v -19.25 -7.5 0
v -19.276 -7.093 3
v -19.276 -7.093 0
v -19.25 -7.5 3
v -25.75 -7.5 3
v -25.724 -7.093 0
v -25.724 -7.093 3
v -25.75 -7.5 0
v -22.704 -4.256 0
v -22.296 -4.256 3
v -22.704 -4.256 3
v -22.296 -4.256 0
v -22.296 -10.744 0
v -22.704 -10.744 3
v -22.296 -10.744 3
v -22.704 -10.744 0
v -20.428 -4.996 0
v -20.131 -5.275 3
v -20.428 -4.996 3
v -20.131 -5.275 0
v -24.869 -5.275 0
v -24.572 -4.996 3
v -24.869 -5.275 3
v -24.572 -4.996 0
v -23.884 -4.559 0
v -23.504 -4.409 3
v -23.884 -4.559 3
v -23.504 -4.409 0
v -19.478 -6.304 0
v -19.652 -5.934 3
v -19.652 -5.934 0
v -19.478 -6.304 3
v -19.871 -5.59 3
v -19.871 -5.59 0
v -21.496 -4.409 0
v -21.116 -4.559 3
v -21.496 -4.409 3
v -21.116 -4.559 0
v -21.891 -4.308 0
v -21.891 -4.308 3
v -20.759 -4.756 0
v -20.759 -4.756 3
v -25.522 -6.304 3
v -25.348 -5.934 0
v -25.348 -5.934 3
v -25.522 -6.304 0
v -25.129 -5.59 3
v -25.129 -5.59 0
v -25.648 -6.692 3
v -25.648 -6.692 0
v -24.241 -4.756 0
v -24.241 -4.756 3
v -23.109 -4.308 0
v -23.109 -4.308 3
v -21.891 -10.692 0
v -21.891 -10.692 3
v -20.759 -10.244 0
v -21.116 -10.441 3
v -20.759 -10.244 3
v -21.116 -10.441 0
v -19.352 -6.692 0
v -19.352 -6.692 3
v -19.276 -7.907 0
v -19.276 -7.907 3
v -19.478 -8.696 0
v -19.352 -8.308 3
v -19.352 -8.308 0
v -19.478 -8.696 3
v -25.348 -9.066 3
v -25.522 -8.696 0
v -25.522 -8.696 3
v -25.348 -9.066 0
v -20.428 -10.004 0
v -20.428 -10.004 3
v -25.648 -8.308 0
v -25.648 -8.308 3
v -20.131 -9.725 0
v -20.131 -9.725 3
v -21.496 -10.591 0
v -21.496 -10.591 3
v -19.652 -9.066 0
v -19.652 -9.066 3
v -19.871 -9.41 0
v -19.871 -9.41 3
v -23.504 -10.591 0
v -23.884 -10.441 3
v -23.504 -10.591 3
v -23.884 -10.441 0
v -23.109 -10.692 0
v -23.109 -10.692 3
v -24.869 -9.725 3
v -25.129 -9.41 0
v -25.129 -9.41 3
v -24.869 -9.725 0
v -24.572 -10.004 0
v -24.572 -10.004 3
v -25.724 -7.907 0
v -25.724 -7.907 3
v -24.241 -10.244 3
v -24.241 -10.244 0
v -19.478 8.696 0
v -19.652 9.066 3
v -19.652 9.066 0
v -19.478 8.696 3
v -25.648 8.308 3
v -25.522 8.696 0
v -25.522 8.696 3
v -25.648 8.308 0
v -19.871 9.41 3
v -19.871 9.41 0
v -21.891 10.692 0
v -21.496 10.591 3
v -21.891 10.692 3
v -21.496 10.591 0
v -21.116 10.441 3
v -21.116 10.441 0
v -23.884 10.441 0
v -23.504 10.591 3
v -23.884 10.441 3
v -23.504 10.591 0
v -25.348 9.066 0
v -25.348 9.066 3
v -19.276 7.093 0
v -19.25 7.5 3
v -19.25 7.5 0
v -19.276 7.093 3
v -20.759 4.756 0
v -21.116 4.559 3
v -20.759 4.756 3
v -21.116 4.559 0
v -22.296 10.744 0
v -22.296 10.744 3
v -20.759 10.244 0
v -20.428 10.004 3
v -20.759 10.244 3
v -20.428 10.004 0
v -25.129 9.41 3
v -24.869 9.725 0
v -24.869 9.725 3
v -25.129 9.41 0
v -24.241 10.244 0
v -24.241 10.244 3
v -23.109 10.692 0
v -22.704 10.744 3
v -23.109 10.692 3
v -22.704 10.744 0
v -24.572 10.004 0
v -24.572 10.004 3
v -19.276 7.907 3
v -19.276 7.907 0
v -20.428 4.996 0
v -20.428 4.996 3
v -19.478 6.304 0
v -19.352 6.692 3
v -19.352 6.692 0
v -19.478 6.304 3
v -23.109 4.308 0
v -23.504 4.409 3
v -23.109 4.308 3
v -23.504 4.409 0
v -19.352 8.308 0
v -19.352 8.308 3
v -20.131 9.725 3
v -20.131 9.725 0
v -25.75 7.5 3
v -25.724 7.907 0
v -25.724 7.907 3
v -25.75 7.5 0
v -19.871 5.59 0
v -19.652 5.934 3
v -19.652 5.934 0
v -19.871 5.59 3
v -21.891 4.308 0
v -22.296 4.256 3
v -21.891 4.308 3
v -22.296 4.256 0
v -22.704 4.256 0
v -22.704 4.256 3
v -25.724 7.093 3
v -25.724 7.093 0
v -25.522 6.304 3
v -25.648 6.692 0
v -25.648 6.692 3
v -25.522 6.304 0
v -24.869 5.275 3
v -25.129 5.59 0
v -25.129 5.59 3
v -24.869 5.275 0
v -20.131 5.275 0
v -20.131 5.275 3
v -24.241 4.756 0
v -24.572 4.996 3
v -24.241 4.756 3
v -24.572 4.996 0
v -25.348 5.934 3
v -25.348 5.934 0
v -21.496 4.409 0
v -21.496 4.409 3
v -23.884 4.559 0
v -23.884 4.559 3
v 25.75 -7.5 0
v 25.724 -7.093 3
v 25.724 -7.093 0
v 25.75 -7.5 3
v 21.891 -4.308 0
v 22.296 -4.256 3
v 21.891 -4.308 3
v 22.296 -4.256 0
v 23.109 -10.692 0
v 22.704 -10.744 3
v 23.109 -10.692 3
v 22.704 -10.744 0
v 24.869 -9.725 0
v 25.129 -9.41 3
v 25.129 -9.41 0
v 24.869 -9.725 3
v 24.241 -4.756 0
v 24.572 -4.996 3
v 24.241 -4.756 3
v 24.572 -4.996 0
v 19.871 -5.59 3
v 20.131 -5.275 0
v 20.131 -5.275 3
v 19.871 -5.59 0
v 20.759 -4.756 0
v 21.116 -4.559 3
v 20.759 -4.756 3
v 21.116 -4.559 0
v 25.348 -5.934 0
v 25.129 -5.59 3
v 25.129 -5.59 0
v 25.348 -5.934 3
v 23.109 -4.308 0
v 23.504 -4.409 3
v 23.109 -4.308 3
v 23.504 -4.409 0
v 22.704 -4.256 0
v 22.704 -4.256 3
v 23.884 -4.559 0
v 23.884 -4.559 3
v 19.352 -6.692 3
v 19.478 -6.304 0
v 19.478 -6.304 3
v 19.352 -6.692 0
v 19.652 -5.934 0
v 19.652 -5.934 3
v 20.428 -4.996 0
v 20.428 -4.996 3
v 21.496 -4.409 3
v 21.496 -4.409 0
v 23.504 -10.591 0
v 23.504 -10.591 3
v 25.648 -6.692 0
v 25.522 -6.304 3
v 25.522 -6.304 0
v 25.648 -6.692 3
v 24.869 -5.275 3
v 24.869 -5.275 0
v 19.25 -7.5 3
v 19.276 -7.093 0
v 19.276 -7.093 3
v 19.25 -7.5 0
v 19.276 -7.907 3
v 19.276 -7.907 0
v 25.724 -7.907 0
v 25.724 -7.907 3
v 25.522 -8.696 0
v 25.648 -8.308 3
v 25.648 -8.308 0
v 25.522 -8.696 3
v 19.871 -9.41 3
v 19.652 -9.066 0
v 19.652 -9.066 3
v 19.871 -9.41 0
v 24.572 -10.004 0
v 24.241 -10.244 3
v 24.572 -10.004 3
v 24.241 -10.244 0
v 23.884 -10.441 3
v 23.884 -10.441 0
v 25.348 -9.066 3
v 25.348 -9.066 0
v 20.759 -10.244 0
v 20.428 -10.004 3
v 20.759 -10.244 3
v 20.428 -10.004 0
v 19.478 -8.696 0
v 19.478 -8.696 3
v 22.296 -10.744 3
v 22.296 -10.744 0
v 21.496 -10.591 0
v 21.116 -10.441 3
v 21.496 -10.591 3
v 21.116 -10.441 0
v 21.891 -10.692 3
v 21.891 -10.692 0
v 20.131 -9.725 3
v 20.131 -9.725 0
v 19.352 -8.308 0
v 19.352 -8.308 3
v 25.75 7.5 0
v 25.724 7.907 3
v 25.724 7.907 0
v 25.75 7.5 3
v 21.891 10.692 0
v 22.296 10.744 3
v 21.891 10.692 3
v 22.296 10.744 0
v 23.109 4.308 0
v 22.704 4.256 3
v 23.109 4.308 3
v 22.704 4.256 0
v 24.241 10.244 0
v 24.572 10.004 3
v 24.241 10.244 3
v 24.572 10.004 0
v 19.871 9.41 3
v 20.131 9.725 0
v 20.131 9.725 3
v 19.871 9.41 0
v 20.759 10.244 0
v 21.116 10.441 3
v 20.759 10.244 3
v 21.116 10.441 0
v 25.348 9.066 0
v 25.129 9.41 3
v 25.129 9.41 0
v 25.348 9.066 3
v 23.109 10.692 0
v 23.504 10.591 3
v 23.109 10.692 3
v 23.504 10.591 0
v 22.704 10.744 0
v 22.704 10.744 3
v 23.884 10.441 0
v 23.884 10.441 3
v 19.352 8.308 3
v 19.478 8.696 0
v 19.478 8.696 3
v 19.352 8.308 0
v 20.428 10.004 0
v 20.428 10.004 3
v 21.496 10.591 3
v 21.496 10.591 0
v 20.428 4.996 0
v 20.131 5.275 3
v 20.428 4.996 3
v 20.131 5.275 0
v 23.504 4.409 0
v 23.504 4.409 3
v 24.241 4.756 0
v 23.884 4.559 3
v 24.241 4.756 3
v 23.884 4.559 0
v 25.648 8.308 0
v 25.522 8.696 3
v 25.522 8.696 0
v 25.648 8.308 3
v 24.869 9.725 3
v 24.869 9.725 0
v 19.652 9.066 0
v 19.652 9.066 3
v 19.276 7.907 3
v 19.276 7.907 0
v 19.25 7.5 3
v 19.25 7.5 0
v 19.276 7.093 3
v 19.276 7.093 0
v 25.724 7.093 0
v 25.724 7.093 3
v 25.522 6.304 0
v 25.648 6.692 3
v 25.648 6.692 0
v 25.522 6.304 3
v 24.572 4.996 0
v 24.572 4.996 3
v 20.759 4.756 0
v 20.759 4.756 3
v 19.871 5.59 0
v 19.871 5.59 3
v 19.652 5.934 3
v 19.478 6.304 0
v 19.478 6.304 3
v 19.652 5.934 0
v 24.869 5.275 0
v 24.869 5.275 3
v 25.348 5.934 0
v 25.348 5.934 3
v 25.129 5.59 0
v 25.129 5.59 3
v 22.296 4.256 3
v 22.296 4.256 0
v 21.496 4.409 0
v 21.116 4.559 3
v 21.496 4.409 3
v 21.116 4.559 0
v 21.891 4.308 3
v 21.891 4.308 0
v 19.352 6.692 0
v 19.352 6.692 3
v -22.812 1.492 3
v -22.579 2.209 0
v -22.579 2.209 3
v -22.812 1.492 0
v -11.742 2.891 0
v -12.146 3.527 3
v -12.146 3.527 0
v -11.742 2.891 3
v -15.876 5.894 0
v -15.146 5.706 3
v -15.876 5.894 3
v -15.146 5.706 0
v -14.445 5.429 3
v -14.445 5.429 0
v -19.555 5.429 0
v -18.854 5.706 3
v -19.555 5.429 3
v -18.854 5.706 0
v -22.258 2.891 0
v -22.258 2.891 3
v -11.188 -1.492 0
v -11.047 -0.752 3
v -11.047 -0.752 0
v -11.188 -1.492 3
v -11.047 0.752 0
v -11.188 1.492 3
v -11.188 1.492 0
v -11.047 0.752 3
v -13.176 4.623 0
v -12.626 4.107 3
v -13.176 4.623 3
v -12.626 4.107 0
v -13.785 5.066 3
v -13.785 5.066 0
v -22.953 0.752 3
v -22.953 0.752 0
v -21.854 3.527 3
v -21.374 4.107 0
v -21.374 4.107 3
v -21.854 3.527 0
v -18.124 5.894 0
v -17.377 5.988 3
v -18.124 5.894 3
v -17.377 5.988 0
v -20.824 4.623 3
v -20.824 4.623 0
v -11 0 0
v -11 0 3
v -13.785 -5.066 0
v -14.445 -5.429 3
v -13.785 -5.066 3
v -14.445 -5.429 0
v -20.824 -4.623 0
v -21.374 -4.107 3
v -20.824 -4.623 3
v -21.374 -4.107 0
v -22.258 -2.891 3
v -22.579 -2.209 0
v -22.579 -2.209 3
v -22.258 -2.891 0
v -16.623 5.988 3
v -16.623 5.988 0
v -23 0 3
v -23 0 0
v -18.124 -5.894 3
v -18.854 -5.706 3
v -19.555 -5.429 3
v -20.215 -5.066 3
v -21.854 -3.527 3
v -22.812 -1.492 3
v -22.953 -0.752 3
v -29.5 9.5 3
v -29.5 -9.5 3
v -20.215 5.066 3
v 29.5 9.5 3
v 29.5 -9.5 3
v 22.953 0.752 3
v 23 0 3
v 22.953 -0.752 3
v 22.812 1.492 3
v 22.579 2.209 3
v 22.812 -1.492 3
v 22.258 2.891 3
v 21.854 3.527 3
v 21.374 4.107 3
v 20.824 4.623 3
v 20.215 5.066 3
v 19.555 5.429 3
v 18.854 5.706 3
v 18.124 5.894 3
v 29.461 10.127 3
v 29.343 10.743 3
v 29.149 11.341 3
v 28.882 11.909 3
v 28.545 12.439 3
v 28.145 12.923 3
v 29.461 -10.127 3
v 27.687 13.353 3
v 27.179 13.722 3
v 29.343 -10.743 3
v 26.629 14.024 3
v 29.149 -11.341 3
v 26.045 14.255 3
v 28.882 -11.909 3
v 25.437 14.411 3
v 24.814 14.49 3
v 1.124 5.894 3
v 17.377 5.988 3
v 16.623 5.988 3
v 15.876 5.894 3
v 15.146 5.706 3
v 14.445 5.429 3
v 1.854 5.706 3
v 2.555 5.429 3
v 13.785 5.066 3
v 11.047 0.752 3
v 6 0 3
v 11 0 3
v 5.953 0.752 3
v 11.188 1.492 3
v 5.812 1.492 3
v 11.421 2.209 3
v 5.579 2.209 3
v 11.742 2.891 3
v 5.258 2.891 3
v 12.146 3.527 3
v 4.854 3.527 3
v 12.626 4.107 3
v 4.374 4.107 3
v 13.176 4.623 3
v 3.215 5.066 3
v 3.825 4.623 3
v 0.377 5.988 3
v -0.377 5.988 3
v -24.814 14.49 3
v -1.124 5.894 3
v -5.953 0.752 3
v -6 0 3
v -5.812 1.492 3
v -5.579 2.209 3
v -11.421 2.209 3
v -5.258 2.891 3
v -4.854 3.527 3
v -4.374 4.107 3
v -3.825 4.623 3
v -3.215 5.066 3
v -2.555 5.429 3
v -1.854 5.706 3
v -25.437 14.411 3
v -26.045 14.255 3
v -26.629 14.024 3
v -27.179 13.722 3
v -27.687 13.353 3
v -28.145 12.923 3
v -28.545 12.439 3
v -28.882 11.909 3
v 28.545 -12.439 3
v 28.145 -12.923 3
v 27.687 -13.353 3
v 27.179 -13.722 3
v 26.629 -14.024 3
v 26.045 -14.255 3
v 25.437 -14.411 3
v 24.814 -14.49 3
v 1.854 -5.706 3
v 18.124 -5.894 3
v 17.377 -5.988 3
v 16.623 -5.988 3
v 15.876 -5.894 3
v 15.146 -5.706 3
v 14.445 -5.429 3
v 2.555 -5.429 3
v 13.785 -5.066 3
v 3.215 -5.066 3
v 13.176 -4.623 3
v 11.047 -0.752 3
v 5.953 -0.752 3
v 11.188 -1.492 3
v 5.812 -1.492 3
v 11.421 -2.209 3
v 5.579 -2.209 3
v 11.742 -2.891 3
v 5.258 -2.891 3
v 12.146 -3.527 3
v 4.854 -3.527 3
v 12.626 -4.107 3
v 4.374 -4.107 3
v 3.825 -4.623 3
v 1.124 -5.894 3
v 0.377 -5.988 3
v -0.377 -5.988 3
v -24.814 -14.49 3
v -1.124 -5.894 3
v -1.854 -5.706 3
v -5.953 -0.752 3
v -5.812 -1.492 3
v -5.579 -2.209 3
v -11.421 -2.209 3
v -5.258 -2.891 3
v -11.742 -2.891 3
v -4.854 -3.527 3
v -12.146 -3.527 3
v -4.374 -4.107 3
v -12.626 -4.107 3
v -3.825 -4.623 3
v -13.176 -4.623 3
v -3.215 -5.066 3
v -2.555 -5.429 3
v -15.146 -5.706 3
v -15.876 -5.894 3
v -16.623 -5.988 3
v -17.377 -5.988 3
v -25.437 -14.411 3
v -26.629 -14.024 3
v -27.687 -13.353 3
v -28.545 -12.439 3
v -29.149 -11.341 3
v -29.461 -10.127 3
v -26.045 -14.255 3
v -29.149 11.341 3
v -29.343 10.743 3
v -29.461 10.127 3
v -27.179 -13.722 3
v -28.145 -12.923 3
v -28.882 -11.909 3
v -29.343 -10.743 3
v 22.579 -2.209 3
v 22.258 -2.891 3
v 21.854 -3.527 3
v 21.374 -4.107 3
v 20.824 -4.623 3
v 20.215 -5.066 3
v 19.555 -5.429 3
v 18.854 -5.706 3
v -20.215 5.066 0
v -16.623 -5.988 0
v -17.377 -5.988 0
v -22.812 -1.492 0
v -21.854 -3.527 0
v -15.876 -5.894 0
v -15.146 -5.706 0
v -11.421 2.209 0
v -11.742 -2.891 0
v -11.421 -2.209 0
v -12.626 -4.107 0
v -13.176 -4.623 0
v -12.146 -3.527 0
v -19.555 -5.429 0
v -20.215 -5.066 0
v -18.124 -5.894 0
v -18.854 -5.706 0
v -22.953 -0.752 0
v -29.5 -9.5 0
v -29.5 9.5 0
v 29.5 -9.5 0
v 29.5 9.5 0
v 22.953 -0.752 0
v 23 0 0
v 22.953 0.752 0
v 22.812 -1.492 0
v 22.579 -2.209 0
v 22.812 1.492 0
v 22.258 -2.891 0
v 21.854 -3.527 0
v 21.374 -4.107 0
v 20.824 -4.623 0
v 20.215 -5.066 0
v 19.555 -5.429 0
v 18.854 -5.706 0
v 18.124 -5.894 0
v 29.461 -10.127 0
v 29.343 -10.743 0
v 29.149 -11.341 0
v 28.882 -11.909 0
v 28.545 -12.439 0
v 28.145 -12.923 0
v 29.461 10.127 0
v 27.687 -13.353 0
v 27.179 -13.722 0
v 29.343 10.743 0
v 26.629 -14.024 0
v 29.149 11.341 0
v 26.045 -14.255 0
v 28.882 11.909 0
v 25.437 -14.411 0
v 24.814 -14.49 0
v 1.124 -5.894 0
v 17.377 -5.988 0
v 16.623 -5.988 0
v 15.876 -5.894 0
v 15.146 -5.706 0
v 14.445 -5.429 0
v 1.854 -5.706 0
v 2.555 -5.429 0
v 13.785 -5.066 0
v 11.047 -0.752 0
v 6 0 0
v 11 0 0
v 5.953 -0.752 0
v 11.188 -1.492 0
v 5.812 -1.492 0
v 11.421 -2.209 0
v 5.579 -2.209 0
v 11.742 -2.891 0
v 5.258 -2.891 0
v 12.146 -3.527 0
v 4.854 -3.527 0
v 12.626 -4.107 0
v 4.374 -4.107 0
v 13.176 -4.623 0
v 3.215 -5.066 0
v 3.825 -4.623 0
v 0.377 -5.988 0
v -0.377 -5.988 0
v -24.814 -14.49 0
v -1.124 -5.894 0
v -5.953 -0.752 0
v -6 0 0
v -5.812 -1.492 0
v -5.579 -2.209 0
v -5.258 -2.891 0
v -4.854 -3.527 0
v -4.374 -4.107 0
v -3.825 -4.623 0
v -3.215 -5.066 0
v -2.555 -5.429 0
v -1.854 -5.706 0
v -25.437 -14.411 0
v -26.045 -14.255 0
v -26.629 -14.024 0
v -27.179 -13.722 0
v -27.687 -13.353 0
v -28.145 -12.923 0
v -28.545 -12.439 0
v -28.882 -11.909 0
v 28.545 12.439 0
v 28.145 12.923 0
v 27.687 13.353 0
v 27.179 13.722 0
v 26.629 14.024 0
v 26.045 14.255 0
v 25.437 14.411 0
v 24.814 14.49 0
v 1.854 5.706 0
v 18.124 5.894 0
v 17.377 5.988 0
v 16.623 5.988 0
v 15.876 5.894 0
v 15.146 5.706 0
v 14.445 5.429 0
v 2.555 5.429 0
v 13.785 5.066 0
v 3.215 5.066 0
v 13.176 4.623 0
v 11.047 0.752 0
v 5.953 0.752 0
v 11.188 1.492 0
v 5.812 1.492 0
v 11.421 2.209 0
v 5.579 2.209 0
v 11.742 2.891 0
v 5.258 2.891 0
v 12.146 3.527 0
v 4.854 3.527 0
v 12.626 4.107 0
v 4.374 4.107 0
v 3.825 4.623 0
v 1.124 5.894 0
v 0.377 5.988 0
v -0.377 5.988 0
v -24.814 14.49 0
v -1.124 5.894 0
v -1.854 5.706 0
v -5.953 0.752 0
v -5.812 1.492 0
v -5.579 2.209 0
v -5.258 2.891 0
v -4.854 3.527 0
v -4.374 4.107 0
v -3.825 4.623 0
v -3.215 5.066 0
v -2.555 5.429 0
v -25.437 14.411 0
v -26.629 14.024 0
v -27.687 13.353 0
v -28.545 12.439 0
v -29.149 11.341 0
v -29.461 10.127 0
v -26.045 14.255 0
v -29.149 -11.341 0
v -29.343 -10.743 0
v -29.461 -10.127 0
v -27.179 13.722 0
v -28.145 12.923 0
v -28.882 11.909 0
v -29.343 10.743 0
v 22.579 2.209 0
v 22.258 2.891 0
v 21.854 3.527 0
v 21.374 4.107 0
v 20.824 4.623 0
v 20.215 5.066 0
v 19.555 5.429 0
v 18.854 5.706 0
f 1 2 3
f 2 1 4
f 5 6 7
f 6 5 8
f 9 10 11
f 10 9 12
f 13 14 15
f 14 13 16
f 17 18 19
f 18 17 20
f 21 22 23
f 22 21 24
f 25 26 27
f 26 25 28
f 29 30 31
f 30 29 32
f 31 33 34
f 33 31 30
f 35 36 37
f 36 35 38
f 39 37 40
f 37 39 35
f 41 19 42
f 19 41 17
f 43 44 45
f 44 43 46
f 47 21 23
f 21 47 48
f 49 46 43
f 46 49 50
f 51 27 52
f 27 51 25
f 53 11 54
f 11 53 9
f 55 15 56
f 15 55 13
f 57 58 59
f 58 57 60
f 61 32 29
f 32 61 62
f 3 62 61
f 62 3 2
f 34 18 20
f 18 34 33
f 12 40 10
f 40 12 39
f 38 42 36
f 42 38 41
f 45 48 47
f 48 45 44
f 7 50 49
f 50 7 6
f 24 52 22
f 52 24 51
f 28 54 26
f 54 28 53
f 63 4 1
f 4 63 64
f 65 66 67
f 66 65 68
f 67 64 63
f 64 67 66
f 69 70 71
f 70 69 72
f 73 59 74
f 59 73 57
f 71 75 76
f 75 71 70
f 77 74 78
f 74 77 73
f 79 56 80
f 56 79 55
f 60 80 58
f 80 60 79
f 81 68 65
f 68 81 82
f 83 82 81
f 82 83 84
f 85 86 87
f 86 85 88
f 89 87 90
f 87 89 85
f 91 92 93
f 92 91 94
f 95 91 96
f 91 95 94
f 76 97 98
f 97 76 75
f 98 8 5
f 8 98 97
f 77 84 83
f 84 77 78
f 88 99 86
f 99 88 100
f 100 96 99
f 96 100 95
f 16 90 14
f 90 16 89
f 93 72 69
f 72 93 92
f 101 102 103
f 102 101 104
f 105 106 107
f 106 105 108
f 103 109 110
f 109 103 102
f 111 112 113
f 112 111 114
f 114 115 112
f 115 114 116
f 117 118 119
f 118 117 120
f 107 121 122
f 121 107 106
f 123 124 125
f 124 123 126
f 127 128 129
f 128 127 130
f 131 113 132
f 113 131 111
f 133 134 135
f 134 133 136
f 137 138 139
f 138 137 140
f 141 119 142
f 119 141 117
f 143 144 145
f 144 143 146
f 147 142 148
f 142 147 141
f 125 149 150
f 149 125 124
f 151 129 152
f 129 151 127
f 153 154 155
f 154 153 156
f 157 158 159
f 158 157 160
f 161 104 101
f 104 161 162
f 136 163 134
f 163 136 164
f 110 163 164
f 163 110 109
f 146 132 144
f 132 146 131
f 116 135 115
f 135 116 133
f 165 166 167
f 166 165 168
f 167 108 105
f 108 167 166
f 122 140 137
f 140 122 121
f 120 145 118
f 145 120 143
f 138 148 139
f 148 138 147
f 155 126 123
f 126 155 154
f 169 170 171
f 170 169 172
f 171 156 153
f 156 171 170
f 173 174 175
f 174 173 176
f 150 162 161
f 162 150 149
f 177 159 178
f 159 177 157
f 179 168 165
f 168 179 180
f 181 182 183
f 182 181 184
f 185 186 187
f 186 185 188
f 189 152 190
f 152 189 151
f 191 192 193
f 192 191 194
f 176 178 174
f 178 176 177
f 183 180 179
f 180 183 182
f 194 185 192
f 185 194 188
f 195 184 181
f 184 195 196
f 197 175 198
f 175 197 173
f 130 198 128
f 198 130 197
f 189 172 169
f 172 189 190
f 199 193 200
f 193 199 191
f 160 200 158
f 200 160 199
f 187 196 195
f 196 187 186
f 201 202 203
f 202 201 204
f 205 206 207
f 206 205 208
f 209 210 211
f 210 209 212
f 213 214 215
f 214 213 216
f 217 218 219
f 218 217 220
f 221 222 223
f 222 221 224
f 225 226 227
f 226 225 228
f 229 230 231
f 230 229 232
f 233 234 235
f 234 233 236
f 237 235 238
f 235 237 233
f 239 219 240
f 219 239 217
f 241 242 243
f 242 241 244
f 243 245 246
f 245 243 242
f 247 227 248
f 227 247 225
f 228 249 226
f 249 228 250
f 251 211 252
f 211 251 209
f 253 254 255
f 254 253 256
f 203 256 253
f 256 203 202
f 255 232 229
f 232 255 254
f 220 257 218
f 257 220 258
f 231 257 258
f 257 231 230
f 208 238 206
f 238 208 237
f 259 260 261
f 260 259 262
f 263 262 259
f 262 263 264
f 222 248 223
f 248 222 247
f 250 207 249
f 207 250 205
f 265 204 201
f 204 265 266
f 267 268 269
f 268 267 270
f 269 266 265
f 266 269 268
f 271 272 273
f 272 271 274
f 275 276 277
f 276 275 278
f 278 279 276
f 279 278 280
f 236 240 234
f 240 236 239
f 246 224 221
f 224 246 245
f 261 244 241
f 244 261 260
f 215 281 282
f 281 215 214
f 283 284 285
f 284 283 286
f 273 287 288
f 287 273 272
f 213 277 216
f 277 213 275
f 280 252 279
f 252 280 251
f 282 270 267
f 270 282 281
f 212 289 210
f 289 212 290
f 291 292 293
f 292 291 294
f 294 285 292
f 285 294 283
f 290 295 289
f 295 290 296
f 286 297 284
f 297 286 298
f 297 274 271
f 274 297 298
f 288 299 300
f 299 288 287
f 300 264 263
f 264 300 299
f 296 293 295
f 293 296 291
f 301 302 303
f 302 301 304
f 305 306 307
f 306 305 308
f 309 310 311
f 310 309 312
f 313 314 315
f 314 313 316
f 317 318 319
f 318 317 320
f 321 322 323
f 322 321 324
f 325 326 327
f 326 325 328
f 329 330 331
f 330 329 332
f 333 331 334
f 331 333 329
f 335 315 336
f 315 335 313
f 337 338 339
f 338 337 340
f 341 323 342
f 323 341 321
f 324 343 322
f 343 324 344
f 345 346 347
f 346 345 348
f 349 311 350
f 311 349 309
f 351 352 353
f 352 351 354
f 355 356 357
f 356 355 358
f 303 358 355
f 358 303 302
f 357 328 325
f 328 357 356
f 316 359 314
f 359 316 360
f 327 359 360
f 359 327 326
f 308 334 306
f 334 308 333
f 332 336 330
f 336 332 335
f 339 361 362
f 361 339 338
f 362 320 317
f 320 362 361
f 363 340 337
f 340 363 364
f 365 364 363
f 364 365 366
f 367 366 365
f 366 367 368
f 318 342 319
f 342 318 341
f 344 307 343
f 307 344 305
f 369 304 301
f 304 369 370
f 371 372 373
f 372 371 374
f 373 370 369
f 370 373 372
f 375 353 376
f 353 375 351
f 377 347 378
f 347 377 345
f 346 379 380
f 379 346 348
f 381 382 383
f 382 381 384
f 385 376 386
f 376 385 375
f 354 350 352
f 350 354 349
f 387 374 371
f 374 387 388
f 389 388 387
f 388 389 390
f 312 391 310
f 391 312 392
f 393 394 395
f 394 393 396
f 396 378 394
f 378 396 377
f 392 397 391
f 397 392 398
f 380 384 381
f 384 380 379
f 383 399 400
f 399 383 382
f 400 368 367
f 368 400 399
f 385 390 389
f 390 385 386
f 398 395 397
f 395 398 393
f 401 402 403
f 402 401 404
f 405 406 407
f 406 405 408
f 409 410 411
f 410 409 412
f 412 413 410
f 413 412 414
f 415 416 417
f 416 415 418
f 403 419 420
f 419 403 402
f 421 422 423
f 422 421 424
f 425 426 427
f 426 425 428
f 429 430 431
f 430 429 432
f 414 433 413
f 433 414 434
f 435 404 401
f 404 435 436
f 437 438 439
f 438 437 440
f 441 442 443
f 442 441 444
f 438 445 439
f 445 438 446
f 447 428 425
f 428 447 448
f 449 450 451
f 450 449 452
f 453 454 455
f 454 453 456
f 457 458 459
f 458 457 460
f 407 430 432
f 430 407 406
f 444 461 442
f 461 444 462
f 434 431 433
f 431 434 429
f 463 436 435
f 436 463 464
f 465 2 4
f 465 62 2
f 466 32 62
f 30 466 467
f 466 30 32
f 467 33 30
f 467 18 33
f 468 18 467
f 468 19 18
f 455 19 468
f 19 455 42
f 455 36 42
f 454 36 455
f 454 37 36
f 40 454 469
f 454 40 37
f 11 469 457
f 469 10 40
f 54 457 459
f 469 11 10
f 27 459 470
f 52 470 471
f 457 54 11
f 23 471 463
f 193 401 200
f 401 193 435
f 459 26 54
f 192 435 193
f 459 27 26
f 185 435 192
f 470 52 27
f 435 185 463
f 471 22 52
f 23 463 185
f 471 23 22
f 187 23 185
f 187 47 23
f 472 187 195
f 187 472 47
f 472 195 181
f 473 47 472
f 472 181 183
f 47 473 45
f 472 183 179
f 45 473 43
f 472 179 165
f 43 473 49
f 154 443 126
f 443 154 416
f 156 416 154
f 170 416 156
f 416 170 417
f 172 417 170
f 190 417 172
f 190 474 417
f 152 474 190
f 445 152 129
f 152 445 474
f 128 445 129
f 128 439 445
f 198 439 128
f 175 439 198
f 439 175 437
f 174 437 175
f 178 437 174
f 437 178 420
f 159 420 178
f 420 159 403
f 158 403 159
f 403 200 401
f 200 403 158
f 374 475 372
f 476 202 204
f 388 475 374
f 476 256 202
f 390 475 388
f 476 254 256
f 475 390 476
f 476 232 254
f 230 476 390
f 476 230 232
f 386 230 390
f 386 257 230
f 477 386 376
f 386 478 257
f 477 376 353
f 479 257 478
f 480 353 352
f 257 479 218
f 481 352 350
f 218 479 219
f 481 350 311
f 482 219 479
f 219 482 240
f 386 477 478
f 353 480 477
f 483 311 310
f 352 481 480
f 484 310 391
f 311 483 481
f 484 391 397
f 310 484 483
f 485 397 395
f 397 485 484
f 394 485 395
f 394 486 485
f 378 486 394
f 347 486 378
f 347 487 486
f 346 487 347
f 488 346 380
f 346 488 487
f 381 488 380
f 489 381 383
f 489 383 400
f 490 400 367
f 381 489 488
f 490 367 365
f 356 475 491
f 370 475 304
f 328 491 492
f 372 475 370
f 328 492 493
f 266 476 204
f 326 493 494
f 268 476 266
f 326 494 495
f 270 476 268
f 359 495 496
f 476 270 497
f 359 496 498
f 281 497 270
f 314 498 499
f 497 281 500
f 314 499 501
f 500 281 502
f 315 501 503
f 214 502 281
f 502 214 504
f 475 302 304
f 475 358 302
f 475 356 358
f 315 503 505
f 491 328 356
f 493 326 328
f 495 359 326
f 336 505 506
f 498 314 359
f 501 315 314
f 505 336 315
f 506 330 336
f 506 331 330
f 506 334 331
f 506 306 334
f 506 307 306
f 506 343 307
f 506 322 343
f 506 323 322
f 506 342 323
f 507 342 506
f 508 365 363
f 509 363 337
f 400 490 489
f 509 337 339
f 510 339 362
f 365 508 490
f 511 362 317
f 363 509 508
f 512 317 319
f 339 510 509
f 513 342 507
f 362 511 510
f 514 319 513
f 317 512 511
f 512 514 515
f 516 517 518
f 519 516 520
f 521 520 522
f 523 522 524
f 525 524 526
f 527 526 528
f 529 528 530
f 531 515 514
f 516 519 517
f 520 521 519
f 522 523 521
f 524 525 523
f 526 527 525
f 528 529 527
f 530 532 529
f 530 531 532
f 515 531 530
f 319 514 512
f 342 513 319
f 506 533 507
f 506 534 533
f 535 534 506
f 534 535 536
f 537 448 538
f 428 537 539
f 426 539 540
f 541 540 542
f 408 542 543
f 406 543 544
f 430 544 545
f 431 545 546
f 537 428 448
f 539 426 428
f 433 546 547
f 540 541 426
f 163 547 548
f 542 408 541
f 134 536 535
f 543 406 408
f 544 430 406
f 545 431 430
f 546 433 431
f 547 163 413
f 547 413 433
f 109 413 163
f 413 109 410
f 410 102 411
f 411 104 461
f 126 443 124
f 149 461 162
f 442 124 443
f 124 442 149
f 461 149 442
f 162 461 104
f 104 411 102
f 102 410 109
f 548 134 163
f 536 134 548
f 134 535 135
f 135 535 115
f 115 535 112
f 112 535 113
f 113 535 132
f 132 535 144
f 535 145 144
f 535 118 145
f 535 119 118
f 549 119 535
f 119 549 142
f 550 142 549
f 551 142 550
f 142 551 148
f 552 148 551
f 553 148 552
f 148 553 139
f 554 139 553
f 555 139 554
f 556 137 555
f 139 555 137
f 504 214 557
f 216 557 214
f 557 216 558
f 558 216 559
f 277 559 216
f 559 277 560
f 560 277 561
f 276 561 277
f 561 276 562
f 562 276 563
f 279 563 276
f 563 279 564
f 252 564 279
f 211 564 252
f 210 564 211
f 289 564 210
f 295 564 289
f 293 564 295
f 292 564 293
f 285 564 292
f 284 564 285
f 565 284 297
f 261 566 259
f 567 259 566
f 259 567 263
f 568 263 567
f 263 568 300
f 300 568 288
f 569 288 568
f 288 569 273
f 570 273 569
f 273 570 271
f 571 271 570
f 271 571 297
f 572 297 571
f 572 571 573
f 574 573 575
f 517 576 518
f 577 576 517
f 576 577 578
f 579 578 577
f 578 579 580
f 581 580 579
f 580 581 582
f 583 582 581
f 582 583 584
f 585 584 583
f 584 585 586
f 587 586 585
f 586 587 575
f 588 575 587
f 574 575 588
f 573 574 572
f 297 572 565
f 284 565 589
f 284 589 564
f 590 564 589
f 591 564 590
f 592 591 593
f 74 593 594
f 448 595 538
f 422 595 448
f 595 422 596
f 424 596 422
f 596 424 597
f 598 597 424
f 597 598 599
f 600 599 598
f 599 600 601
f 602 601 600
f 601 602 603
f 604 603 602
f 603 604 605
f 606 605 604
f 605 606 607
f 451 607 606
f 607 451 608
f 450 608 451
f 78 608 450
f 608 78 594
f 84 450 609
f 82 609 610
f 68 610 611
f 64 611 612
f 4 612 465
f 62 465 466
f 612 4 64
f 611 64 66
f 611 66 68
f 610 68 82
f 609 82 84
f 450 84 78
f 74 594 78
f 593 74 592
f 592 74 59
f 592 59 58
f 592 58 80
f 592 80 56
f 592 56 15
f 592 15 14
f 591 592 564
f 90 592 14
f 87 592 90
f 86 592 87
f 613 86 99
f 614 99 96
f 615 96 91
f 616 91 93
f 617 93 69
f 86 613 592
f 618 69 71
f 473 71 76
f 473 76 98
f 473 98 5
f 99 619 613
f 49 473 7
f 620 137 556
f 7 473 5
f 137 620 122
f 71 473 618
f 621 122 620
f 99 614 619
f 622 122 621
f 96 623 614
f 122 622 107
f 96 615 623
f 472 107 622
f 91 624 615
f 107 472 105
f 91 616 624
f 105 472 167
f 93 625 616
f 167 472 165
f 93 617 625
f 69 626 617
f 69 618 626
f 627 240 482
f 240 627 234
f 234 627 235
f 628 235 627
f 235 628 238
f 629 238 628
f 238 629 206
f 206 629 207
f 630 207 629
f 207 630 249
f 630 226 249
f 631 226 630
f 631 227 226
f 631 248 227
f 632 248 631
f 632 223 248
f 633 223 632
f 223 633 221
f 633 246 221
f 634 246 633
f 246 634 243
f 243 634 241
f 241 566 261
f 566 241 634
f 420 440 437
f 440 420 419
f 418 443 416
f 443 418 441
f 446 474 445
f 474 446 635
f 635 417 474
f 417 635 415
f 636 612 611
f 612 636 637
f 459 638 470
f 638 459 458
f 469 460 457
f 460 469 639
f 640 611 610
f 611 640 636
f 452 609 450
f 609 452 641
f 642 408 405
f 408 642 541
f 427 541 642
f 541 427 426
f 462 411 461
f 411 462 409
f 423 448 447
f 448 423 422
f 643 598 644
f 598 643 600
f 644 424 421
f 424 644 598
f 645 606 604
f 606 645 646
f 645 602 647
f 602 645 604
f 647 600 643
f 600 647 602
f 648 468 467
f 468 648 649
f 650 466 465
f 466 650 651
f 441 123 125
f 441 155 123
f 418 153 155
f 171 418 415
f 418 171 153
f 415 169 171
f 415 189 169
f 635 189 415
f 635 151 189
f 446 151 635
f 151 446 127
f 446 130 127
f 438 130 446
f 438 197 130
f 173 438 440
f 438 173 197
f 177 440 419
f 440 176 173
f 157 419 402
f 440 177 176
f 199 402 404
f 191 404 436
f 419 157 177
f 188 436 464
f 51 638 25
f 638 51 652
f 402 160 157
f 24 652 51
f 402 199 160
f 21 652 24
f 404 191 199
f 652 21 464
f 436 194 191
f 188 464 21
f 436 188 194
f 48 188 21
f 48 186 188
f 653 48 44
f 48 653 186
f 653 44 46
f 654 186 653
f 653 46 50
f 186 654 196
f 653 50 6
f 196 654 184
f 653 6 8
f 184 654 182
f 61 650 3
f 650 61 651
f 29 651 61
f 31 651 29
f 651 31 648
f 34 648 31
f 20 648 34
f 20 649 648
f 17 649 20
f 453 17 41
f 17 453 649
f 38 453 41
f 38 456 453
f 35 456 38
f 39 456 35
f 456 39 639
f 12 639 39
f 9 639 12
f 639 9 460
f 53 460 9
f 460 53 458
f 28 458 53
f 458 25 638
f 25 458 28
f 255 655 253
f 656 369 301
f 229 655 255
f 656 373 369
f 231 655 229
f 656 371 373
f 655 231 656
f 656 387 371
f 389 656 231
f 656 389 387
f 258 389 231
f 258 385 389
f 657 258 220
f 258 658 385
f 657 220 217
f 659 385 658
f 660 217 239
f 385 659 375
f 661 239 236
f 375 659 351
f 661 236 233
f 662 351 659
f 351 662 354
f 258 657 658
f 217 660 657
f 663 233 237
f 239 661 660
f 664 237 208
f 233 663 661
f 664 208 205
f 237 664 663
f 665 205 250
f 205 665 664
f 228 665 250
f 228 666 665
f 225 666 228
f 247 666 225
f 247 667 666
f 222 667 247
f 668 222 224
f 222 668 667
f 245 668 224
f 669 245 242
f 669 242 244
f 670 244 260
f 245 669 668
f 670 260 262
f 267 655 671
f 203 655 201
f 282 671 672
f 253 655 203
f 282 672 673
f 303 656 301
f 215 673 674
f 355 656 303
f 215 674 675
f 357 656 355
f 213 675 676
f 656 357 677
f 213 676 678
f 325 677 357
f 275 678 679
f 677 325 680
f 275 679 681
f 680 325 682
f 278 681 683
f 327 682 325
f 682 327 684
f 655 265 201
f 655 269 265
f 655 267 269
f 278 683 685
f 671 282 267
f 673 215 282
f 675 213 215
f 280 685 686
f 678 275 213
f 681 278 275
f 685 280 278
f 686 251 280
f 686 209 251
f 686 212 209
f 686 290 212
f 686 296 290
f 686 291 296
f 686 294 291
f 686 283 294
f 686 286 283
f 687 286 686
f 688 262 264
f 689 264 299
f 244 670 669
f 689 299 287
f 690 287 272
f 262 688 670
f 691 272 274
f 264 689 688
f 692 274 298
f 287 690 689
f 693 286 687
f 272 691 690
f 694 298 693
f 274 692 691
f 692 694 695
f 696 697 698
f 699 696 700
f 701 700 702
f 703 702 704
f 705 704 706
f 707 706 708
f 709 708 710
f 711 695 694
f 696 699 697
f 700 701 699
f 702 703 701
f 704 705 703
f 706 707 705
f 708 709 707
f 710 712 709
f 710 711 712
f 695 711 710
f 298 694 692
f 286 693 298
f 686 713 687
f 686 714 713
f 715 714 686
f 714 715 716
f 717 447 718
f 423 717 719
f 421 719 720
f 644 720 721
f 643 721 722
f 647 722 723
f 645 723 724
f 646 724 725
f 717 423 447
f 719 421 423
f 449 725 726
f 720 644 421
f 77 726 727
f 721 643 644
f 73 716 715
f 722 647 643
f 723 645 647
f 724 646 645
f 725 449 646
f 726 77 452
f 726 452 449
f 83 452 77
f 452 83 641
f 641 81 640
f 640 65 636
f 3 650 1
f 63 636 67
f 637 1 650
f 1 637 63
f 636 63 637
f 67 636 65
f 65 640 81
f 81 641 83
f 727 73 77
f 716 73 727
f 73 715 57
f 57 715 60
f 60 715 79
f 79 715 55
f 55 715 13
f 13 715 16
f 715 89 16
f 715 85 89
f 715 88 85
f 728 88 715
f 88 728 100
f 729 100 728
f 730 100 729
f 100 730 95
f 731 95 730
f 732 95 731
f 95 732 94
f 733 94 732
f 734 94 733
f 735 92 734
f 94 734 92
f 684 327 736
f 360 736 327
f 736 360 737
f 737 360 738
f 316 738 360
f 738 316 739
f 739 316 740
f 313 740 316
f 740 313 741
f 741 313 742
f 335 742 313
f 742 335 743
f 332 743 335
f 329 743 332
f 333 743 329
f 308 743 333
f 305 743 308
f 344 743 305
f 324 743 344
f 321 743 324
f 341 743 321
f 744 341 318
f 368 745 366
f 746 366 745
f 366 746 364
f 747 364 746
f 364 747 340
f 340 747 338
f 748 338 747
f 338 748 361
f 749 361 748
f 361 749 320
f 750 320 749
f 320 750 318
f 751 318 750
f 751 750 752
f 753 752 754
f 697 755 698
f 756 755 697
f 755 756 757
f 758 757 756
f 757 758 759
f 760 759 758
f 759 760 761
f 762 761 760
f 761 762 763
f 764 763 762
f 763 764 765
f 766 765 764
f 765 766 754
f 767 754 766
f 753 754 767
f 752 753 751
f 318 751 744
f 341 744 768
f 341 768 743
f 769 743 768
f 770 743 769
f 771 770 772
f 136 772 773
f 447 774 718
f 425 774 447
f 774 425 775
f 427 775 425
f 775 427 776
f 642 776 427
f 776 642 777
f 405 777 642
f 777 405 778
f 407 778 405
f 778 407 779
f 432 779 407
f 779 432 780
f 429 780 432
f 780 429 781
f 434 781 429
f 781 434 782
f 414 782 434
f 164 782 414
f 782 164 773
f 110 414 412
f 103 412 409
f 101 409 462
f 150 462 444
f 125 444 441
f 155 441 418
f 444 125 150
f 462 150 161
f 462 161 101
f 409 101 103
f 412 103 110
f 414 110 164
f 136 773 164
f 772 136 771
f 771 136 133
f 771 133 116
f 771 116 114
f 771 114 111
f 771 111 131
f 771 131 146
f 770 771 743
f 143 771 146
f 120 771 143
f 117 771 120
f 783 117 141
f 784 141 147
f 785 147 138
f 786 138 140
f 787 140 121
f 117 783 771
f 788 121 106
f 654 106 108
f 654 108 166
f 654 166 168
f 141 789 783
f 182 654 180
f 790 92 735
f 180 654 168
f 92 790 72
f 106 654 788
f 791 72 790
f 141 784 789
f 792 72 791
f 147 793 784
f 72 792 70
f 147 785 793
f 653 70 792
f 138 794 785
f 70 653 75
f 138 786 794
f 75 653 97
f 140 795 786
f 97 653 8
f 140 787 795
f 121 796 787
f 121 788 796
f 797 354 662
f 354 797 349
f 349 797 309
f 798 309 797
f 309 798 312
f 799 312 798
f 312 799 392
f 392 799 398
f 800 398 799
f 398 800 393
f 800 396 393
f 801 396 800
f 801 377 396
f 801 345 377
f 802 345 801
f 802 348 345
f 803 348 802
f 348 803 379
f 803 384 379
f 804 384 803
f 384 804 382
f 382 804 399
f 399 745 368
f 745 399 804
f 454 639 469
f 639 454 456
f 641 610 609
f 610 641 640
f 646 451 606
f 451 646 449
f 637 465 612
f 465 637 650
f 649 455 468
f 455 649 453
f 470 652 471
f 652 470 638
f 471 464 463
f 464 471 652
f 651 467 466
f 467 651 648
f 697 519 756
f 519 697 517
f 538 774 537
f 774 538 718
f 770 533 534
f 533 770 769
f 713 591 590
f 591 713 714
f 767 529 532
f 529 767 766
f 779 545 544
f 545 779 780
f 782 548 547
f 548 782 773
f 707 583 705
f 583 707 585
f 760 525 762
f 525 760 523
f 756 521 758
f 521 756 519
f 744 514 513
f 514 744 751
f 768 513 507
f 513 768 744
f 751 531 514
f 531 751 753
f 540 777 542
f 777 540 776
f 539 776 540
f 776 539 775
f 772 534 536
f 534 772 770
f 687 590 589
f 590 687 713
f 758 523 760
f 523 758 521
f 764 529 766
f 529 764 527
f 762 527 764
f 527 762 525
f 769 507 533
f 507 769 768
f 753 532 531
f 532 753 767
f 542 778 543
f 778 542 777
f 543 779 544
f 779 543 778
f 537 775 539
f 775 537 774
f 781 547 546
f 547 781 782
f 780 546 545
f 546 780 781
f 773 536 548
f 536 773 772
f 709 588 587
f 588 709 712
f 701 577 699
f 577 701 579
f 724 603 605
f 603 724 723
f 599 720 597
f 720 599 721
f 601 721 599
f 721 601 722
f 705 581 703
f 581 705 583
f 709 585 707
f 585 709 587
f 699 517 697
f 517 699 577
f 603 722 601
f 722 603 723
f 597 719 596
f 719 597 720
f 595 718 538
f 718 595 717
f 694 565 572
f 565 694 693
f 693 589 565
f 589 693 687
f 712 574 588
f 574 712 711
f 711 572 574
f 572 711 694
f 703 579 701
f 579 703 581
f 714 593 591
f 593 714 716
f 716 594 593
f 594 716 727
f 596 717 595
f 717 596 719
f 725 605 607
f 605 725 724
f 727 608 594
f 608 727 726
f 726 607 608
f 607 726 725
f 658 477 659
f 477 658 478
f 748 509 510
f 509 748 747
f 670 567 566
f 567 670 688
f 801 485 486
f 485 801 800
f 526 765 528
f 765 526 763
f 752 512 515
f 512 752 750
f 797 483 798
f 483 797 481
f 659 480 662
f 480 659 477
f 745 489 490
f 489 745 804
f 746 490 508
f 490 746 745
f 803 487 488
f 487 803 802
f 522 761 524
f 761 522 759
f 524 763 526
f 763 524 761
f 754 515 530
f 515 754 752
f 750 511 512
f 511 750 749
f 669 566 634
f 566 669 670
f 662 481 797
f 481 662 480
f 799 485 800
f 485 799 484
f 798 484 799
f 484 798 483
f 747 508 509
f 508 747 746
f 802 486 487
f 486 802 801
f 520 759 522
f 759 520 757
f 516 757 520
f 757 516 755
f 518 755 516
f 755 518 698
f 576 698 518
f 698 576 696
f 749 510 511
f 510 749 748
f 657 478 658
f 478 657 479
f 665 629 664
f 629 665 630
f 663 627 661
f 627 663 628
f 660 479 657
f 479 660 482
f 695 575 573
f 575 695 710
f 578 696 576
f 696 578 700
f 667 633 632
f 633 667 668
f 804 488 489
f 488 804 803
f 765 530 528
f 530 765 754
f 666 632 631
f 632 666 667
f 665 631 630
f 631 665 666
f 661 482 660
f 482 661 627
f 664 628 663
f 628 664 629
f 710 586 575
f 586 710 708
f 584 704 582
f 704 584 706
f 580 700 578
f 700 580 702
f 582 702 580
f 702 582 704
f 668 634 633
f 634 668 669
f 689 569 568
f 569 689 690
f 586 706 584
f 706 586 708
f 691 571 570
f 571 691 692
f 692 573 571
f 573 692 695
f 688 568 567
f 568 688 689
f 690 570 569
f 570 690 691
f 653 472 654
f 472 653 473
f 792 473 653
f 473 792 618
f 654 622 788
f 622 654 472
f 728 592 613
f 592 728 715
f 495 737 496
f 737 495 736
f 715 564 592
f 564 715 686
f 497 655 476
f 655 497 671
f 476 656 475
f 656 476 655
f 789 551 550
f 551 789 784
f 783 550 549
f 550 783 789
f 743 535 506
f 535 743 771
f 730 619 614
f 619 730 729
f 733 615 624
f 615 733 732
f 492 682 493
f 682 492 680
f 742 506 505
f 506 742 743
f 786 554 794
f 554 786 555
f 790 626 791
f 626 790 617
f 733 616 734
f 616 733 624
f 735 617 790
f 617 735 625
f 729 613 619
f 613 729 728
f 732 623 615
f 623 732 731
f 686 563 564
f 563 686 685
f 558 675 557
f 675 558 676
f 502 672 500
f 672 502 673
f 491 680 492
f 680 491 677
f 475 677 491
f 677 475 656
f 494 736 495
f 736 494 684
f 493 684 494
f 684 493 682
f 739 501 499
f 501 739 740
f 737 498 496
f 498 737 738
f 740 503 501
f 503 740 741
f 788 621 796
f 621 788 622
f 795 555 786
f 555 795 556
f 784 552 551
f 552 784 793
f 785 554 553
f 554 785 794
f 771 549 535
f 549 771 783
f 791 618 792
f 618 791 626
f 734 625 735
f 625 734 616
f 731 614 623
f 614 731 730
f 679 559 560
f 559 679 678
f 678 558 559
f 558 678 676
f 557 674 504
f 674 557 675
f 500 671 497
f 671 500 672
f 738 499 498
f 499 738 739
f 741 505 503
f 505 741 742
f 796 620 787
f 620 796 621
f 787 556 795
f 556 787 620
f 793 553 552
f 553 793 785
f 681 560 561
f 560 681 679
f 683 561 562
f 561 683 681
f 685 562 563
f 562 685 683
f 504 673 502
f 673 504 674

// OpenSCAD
$fn = 50;


difference() {
	union() {
		hull() {
			translate(v = [-24.5000000000, 9.5000000000, 0]) {
				cylinder(h = 3, r = 5);
			}
			translate(v = [24.5000000000, 9.5000000000, 0]) {
				cylinder(h = 3, r = 5);
			}
			translate(v = [-24.5000000000, -9.5000000000, 0]) {
				cylinder(h = 3, r = 5);
			}
			translate(v = [24.5000000000, -9.5000000000, 0]) {
				cylinder(h = 3, r = 5);
			}
		}
	}
	union() {
		#translate(v = [-22.5000000000, -7.5000000000, -100.0000000000]) {
			cylinder(h = 200, r = 3.2500000000);
		}
		#translate(v = [-22.5000000000, 7.5000000000, -100.0000000000]) {
			cylinder(h = 200, r = 3.2500000000);
		}
		#translate(v = [22.5000000000, -7.5000000000, -100.0000000000]) {
			cylinder(h = 200, r = 3.2500000000);
		}
		#translate(v = [22.5000000000, 7.5000000000, -100.0000000000]) {
			cylinder(h = 200, r = 3.2500000000);
		}
		#translate(v = [-17.0000000000, 0, 0]) {
			cylinder(h = 3, r = 6.0000000000);
		}
		#cylinder(h = 3, r = 6.0000000000);
		#translate(v = [17.0000000000, 0, 0]) {
			cylinder(h = 3, r = 6.0000000000);
		}
	}
}
